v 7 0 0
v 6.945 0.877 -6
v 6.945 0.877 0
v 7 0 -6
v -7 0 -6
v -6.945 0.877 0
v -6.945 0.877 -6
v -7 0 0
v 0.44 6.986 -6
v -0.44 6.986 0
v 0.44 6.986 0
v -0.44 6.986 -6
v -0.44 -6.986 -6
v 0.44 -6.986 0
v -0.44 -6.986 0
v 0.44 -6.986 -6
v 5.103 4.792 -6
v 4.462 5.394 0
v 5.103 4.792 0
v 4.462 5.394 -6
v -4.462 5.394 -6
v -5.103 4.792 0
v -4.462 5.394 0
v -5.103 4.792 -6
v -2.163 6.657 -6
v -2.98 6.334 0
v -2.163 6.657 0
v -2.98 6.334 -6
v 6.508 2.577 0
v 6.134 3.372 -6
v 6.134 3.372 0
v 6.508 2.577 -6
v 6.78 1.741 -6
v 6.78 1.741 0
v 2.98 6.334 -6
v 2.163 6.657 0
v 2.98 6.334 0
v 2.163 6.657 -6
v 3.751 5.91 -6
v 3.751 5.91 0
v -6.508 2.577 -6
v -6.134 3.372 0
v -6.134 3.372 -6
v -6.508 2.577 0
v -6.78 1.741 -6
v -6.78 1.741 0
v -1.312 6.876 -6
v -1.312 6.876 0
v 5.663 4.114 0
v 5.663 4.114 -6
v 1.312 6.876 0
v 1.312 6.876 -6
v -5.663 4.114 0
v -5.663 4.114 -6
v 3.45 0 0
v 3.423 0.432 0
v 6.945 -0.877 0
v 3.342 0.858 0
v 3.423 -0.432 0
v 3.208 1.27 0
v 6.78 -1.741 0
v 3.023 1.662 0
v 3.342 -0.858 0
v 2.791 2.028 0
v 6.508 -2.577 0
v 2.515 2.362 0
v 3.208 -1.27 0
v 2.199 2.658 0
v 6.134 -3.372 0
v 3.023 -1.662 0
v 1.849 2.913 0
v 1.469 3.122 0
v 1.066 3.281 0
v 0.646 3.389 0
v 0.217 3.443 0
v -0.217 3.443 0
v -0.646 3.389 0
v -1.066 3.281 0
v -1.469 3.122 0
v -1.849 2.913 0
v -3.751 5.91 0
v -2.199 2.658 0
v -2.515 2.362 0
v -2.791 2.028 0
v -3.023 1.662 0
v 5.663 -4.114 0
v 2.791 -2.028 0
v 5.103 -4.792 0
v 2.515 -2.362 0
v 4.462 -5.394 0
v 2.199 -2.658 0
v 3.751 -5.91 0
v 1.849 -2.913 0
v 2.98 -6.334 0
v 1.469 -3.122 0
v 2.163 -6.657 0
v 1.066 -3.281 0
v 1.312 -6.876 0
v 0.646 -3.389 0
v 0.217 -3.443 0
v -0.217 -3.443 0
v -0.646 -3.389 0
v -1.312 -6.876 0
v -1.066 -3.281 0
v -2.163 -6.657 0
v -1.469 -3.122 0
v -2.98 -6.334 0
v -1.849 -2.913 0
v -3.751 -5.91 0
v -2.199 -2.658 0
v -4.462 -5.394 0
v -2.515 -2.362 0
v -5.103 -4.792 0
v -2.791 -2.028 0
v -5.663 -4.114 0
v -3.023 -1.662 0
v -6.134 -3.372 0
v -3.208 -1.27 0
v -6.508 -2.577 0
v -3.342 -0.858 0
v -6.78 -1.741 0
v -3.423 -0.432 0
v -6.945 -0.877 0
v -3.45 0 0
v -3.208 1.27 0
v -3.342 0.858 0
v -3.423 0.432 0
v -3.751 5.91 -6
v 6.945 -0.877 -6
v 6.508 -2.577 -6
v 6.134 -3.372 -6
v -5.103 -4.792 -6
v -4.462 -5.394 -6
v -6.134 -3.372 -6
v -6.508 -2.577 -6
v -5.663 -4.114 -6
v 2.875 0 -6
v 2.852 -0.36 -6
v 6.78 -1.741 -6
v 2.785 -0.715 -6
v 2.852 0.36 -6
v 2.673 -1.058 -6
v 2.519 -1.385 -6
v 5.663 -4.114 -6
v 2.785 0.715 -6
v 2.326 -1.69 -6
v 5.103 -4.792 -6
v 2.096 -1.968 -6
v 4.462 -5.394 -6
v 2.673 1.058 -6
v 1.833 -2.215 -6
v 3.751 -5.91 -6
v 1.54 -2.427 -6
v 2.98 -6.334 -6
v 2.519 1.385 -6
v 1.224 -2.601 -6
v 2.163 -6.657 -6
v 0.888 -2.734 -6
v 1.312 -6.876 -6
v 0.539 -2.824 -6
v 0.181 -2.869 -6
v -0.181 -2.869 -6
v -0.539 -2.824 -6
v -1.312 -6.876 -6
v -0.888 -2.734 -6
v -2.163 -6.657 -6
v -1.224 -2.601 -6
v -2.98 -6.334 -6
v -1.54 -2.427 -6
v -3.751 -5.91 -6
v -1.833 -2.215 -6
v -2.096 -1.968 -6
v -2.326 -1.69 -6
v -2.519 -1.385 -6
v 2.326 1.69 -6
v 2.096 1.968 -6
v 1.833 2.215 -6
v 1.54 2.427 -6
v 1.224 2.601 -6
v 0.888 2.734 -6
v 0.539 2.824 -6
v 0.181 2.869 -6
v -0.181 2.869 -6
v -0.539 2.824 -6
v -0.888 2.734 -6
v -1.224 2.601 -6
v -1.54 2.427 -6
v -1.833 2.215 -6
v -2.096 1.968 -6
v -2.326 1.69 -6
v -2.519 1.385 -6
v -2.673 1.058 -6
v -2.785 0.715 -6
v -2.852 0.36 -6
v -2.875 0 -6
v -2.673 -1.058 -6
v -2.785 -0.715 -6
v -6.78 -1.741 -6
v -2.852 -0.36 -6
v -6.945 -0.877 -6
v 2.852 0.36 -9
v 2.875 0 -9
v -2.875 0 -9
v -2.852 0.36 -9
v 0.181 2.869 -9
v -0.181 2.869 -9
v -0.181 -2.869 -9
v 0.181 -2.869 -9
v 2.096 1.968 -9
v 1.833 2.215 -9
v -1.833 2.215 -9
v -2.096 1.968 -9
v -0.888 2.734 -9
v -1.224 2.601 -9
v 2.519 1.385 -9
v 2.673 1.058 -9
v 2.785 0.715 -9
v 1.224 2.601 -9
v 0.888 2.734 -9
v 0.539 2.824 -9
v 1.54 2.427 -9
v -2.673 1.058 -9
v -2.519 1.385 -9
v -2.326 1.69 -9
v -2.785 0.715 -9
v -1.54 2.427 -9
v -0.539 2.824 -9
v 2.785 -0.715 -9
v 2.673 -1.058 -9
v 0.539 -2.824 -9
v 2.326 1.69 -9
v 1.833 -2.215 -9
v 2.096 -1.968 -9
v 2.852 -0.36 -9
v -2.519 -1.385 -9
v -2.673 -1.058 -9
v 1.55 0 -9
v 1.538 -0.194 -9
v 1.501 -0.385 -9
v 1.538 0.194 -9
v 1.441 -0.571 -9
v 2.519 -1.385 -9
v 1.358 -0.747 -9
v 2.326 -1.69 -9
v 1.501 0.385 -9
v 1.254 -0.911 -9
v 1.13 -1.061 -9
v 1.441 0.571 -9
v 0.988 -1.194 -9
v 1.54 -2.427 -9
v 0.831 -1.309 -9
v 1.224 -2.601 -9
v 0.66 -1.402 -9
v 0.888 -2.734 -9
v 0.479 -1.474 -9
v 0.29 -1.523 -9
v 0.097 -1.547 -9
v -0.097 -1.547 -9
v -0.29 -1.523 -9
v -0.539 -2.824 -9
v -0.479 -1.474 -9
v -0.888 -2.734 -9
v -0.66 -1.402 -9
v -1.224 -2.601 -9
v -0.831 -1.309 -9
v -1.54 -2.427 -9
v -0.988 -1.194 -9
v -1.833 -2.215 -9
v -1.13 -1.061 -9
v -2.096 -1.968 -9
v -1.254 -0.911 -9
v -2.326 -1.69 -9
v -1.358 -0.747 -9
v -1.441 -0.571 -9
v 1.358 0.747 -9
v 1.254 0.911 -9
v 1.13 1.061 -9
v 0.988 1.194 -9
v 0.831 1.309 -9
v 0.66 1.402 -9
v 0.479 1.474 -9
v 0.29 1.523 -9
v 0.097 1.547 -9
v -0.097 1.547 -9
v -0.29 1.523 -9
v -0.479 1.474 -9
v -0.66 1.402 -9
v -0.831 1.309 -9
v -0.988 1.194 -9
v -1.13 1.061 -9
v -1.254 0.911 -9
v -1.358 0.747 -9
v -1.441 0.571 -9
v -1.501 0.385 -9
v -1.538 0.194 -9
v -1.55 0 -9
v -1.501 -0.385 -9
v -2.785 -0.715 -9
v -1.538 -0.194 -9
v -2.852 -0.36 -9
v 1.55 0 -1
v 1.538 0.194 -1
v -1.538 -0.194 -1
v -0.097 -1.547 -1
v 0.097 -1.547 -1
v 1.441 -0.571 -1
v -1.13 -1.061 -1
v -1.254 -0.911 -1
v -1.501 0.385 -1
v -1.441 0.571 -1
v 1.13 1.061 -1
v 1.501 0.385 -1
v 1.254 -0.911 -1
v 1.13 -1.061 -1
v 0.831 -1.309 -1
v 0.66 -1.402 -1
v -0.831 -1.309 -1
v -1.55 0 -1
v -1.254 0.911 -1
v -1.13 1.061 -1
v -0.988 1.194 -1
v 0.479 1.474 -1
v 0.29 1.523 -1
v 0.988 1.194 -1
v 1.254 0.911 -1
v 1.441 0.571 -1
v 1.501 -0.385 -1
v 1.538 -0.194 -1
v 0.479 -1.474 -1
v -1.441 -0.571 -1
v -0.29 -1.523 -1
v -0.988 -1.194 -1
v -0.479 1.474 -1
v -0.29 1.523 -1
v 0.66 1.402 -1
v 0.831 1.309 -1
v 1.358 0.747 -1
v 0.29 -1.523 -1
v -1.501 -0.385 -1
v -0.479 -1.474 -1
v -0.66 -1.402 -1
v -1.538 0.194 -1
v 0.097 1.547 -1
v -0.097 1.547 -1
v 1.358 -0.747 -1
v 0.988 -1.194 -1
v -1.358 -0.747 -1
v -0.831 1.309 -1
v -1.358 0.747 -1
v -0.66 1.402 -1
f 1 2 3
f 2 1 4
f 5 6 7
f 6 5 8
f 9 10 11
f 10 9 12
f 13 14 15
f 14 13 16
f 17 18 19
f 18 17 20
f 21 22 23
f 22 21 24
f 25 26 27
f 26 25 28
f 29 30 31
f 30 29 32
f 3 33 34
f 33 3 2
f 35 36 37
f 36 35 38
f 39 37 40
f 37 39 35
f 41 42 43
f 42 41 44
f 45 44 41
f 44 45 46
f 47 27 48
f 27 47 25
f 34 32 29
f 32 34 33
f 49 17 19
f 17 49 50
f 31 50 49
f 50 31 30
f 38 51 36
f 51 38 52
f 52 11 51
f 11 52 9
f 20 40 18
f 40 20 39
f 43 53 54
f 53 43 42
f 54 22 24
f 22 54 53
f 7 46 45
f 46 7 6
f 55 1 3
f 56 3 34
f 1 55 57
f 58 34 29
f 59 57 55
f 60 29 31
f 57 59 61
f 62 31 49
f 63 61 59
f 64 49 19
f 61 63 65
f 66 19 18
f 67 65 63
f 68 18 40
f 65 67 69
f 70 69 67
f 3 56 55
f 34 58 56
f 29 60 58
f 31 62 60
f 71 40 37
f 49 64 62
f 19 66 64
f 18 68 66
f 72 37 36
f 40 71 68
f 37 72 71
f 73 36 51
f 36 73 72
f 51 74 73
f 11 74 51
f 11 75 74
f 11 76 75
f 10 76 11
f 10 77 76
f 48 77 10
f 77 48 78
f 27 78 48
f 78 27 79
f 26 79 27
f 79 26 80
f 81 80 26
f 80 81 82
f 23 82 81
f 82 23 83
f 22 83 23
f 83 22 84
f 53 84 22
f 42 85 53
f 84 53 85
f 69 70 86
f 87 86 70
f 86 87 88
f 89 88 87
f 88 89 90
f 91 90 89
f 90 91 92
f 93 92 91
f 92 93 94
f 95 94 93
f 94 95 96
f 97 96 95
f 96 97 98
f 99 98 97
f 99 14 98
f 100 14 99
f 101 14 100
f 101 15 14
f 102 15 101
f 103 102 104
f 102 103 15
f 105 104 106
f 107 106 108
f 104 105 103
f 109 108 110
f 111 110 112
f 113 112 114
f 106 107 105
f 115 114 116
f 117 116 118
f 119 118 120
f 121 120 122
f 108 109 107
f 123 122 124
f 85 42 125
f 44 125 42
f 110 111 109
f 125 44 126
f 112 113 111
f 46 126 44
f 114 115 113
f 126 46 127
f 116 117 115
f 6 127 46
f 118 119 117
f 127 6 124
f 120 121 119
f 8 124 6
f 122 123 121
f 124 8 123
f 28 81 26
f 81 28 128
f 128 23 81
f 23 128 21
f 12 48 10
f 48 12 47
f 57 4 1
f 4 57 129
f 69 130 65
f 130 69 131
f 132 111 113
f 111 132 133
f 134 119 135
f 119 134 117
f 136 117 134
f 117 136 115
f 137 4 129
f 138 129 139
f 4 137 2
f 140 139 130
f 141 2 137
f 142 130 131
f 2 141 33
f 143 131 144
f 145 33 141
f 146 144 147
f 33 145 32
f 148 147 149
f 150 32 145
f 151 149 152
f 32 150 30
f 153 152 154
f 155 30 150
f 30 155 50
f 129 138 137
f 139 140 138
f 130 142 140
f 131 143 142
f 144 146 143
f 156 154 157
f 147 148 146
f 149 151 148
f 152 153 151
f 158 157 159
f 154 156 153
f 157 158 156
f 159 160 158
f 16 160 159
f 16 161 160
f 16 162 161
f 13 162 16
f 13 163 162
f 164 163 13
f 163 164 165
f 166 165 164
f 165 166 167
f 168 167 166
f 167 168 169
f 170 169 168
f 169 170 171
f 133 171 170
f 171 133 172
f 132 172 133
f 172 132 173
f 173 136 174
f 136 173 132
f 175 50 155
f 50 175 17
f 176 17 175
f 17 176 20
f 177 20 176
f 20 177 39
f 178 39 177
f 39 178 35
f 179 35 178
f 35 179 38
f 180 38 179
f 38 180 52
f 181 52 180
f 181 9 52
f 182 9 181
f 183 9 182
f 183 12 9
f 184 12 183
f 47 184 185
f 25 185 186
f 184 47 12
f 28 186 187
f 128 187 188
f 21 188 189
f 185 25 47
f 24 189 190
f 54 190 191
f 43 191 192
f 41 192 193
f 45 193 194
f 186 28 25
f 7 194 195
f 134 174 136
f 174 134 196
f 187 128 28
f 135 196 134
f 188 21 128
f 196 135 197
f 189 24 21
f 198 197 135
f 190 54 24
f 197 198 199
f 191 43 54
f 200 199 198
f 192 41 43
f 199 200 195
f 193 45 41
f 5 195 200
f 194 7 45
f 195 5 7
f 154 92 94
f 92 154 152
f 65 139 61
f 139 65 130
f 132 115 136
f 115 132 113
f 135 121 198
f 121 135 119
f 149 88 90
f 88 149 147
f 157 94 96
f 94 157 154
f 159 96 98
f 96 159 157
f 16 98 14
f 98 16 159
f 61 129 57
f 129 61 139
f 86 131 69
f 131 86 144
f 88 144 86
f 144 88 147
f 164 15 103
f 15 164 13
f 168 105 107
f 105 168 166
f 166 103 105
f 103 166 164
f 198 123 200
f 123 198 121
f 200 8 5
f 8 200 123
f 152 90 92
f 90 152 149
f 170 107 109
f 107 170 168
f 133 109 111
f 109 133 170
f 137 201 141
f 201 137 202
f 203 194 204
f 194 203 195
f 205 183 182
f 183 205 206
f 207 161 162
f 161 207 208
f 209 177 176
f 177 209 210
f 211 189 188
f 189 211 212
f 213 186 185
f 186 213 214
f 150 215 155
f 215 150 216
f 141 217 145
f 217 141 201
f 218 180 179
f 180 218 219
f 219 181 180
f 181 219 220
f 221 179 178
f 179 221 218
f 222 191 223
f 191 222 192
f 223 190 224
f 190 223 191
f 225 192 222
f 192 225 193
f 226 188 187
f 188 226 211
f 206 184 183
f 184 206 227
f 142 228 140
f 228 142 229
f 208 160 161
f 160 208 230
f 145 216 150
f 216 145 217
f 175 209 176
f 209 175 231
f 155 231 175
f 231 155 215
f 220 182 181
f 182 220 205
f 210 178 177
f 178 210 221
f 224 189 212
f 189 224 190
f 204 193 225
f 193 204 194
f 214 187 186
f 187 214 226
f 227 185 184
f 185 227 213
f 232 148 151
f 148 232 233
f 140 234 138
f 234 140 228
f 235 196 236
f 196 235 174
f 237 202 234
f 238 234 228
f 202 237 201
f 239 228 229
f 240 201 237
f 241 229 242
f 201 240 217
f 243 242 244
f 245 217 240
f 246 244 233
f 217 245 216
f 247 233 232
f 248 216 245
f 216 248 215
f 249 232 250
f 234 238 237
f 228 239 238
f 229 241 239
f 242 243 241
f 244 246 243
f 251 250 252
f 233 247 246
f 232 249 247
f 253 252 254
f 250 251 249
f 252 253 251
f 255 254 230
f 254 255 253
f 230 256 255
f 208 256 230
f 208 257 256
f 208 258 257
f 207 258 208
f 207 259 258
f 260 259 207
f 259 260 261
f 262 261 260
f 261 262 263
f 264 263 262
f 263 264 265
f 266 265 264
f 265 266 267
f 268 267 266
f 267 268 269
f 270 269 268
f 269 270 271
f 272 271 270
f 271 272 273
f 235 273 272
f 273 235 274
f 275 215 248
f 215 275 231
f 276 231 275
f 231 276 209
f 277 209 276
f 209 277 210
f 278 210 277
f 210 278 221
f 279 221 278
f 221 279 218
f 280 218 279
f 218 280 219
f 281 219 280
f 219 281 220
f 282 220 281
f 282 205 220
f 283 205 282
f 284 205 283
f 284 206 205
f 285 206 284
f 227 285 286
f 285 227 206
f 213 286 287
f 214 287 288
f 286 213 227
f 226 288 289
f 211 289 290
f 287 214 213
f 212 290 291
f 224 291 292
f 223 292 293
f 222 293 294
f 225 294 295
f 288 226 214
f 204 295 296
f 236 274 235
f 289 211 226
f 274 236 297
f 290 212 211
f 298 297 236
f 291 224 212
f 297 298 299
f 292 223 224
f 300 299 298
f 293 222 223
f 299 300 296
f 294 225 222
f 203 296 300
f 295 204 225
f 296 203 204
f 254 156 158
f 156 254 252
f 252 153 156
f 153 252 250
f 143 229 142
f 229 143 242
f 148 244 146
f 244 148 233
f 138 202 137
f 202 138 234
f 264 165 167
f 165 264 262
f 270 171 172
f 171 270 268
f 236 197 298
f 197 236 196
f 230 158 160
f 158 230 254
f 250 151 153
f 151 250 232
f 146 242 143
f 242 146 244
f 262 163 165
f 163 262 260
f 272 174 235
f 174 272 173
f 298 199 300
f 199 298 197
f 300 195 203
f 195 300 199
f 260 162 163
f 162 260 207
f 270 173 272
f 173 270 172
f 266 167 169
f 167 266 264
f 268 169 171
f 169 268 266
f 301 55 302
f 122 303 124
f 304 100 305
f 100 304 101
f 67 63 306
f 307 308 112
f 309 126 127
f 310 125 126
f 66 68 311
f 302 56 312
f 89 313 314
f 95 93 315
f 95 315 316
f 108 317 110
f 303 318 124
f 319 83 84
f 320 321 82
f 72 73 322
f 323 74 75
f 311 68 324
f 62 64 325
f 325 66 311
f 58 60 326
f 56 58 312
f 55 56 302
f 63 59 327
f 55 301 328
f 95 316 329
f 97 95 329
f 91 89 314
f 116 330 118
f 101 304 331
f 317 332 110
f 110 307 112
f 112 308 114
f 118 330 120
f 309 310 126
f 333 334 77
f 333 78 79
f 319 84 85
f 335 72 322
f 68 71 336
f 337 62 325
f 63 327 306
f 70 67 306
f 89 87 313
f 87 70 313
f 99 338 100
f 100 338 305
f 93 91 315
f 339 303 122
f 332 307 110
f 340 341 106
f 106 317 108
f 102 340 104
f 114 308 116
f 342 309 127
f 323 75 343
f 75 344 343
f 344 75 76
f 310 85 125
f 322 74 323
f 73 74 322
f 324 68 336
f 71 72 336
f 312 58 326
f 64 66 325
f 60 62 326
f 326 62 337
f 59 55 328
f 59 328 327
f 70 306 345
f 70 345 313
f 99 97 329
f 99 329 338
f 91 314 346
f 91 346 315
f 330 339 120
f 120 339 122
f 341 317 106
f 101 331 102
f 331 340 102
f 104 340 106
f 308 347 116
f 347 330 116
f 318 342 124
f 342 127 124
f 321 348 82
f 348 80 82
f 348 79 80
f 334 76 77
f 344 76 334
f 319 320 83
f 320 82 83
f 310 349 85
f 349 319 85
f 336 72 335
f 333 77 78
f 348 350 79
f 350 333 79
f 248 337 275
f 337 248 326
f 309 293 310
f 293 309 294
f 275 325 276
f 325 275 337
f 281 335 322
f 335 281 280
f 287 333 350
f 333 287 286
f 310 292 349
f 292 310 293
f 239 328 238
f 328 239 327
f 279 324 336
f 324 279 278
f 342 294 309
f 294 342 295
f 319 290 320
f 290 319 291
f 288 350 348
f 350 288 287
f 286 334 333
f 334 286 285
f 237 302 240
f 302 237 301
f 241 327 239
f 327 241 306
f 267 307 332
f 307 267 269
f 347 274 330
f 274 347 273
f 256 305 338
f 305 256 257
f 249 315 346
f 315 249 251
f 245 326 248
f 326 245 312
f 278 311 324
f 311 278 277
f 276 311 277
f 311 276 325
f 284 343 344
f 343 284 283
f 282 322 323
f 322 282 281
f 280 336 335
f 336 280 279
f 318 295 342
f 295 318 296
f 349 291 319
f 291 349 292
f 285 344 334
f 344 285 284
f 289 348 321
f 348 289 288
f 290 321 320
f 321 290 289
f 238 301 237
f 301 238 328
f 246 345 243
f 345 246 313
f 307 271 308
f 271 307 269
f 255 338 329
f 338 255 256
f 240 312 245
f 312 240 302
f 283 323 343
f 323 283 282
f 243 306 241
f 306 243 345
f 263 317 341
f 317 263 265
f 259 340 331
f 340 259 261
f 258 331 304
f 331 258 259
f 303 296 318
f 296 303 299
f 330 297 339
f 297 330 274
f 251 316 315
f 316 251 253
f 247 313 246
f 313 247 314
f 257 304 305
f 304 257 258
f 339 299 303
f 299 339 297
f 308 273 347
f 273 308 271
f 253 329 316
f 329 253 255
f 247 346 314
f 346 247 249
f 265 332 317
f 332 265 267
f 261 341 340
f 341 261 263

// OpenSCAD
$fn = 50;


difference() {
	union() {
		translate(v = [0, 0, -6.0000000000]) {
			cylinder(h = 6, r = 7.0000000000);
		}
		translate(v = [0, 0, -9.0000000000]) {
			cylinder(h = 9, r = 2.8750000000);
		}
	}
	union() {
		translate(v = [0, 0, 0]) {
			rotate(a = [0, 0, 0]) {
				difference() {
					union() {
						translate(v = [0, 0, -9.0000000000]) {
							cylinder(h = 9, r = 1.2500000000);
						}
						translate(v = [0, 0, -1.0000000000]) {
							cylinder(h = 1.0000000000, r1 = 1.5500000000, r2 = 3.4500000000);
						}
						translate(v = [0, 0, -9.0000000000]) {
							cylinder(h = 9, r = 1.5500000000);
						}
						translate(v = [0, 0, -9.0000000000]) {
							cylinder(h = 9, r = 1.2500000000);
						}
					}
					union();
				}
			}
		}
	}
}
